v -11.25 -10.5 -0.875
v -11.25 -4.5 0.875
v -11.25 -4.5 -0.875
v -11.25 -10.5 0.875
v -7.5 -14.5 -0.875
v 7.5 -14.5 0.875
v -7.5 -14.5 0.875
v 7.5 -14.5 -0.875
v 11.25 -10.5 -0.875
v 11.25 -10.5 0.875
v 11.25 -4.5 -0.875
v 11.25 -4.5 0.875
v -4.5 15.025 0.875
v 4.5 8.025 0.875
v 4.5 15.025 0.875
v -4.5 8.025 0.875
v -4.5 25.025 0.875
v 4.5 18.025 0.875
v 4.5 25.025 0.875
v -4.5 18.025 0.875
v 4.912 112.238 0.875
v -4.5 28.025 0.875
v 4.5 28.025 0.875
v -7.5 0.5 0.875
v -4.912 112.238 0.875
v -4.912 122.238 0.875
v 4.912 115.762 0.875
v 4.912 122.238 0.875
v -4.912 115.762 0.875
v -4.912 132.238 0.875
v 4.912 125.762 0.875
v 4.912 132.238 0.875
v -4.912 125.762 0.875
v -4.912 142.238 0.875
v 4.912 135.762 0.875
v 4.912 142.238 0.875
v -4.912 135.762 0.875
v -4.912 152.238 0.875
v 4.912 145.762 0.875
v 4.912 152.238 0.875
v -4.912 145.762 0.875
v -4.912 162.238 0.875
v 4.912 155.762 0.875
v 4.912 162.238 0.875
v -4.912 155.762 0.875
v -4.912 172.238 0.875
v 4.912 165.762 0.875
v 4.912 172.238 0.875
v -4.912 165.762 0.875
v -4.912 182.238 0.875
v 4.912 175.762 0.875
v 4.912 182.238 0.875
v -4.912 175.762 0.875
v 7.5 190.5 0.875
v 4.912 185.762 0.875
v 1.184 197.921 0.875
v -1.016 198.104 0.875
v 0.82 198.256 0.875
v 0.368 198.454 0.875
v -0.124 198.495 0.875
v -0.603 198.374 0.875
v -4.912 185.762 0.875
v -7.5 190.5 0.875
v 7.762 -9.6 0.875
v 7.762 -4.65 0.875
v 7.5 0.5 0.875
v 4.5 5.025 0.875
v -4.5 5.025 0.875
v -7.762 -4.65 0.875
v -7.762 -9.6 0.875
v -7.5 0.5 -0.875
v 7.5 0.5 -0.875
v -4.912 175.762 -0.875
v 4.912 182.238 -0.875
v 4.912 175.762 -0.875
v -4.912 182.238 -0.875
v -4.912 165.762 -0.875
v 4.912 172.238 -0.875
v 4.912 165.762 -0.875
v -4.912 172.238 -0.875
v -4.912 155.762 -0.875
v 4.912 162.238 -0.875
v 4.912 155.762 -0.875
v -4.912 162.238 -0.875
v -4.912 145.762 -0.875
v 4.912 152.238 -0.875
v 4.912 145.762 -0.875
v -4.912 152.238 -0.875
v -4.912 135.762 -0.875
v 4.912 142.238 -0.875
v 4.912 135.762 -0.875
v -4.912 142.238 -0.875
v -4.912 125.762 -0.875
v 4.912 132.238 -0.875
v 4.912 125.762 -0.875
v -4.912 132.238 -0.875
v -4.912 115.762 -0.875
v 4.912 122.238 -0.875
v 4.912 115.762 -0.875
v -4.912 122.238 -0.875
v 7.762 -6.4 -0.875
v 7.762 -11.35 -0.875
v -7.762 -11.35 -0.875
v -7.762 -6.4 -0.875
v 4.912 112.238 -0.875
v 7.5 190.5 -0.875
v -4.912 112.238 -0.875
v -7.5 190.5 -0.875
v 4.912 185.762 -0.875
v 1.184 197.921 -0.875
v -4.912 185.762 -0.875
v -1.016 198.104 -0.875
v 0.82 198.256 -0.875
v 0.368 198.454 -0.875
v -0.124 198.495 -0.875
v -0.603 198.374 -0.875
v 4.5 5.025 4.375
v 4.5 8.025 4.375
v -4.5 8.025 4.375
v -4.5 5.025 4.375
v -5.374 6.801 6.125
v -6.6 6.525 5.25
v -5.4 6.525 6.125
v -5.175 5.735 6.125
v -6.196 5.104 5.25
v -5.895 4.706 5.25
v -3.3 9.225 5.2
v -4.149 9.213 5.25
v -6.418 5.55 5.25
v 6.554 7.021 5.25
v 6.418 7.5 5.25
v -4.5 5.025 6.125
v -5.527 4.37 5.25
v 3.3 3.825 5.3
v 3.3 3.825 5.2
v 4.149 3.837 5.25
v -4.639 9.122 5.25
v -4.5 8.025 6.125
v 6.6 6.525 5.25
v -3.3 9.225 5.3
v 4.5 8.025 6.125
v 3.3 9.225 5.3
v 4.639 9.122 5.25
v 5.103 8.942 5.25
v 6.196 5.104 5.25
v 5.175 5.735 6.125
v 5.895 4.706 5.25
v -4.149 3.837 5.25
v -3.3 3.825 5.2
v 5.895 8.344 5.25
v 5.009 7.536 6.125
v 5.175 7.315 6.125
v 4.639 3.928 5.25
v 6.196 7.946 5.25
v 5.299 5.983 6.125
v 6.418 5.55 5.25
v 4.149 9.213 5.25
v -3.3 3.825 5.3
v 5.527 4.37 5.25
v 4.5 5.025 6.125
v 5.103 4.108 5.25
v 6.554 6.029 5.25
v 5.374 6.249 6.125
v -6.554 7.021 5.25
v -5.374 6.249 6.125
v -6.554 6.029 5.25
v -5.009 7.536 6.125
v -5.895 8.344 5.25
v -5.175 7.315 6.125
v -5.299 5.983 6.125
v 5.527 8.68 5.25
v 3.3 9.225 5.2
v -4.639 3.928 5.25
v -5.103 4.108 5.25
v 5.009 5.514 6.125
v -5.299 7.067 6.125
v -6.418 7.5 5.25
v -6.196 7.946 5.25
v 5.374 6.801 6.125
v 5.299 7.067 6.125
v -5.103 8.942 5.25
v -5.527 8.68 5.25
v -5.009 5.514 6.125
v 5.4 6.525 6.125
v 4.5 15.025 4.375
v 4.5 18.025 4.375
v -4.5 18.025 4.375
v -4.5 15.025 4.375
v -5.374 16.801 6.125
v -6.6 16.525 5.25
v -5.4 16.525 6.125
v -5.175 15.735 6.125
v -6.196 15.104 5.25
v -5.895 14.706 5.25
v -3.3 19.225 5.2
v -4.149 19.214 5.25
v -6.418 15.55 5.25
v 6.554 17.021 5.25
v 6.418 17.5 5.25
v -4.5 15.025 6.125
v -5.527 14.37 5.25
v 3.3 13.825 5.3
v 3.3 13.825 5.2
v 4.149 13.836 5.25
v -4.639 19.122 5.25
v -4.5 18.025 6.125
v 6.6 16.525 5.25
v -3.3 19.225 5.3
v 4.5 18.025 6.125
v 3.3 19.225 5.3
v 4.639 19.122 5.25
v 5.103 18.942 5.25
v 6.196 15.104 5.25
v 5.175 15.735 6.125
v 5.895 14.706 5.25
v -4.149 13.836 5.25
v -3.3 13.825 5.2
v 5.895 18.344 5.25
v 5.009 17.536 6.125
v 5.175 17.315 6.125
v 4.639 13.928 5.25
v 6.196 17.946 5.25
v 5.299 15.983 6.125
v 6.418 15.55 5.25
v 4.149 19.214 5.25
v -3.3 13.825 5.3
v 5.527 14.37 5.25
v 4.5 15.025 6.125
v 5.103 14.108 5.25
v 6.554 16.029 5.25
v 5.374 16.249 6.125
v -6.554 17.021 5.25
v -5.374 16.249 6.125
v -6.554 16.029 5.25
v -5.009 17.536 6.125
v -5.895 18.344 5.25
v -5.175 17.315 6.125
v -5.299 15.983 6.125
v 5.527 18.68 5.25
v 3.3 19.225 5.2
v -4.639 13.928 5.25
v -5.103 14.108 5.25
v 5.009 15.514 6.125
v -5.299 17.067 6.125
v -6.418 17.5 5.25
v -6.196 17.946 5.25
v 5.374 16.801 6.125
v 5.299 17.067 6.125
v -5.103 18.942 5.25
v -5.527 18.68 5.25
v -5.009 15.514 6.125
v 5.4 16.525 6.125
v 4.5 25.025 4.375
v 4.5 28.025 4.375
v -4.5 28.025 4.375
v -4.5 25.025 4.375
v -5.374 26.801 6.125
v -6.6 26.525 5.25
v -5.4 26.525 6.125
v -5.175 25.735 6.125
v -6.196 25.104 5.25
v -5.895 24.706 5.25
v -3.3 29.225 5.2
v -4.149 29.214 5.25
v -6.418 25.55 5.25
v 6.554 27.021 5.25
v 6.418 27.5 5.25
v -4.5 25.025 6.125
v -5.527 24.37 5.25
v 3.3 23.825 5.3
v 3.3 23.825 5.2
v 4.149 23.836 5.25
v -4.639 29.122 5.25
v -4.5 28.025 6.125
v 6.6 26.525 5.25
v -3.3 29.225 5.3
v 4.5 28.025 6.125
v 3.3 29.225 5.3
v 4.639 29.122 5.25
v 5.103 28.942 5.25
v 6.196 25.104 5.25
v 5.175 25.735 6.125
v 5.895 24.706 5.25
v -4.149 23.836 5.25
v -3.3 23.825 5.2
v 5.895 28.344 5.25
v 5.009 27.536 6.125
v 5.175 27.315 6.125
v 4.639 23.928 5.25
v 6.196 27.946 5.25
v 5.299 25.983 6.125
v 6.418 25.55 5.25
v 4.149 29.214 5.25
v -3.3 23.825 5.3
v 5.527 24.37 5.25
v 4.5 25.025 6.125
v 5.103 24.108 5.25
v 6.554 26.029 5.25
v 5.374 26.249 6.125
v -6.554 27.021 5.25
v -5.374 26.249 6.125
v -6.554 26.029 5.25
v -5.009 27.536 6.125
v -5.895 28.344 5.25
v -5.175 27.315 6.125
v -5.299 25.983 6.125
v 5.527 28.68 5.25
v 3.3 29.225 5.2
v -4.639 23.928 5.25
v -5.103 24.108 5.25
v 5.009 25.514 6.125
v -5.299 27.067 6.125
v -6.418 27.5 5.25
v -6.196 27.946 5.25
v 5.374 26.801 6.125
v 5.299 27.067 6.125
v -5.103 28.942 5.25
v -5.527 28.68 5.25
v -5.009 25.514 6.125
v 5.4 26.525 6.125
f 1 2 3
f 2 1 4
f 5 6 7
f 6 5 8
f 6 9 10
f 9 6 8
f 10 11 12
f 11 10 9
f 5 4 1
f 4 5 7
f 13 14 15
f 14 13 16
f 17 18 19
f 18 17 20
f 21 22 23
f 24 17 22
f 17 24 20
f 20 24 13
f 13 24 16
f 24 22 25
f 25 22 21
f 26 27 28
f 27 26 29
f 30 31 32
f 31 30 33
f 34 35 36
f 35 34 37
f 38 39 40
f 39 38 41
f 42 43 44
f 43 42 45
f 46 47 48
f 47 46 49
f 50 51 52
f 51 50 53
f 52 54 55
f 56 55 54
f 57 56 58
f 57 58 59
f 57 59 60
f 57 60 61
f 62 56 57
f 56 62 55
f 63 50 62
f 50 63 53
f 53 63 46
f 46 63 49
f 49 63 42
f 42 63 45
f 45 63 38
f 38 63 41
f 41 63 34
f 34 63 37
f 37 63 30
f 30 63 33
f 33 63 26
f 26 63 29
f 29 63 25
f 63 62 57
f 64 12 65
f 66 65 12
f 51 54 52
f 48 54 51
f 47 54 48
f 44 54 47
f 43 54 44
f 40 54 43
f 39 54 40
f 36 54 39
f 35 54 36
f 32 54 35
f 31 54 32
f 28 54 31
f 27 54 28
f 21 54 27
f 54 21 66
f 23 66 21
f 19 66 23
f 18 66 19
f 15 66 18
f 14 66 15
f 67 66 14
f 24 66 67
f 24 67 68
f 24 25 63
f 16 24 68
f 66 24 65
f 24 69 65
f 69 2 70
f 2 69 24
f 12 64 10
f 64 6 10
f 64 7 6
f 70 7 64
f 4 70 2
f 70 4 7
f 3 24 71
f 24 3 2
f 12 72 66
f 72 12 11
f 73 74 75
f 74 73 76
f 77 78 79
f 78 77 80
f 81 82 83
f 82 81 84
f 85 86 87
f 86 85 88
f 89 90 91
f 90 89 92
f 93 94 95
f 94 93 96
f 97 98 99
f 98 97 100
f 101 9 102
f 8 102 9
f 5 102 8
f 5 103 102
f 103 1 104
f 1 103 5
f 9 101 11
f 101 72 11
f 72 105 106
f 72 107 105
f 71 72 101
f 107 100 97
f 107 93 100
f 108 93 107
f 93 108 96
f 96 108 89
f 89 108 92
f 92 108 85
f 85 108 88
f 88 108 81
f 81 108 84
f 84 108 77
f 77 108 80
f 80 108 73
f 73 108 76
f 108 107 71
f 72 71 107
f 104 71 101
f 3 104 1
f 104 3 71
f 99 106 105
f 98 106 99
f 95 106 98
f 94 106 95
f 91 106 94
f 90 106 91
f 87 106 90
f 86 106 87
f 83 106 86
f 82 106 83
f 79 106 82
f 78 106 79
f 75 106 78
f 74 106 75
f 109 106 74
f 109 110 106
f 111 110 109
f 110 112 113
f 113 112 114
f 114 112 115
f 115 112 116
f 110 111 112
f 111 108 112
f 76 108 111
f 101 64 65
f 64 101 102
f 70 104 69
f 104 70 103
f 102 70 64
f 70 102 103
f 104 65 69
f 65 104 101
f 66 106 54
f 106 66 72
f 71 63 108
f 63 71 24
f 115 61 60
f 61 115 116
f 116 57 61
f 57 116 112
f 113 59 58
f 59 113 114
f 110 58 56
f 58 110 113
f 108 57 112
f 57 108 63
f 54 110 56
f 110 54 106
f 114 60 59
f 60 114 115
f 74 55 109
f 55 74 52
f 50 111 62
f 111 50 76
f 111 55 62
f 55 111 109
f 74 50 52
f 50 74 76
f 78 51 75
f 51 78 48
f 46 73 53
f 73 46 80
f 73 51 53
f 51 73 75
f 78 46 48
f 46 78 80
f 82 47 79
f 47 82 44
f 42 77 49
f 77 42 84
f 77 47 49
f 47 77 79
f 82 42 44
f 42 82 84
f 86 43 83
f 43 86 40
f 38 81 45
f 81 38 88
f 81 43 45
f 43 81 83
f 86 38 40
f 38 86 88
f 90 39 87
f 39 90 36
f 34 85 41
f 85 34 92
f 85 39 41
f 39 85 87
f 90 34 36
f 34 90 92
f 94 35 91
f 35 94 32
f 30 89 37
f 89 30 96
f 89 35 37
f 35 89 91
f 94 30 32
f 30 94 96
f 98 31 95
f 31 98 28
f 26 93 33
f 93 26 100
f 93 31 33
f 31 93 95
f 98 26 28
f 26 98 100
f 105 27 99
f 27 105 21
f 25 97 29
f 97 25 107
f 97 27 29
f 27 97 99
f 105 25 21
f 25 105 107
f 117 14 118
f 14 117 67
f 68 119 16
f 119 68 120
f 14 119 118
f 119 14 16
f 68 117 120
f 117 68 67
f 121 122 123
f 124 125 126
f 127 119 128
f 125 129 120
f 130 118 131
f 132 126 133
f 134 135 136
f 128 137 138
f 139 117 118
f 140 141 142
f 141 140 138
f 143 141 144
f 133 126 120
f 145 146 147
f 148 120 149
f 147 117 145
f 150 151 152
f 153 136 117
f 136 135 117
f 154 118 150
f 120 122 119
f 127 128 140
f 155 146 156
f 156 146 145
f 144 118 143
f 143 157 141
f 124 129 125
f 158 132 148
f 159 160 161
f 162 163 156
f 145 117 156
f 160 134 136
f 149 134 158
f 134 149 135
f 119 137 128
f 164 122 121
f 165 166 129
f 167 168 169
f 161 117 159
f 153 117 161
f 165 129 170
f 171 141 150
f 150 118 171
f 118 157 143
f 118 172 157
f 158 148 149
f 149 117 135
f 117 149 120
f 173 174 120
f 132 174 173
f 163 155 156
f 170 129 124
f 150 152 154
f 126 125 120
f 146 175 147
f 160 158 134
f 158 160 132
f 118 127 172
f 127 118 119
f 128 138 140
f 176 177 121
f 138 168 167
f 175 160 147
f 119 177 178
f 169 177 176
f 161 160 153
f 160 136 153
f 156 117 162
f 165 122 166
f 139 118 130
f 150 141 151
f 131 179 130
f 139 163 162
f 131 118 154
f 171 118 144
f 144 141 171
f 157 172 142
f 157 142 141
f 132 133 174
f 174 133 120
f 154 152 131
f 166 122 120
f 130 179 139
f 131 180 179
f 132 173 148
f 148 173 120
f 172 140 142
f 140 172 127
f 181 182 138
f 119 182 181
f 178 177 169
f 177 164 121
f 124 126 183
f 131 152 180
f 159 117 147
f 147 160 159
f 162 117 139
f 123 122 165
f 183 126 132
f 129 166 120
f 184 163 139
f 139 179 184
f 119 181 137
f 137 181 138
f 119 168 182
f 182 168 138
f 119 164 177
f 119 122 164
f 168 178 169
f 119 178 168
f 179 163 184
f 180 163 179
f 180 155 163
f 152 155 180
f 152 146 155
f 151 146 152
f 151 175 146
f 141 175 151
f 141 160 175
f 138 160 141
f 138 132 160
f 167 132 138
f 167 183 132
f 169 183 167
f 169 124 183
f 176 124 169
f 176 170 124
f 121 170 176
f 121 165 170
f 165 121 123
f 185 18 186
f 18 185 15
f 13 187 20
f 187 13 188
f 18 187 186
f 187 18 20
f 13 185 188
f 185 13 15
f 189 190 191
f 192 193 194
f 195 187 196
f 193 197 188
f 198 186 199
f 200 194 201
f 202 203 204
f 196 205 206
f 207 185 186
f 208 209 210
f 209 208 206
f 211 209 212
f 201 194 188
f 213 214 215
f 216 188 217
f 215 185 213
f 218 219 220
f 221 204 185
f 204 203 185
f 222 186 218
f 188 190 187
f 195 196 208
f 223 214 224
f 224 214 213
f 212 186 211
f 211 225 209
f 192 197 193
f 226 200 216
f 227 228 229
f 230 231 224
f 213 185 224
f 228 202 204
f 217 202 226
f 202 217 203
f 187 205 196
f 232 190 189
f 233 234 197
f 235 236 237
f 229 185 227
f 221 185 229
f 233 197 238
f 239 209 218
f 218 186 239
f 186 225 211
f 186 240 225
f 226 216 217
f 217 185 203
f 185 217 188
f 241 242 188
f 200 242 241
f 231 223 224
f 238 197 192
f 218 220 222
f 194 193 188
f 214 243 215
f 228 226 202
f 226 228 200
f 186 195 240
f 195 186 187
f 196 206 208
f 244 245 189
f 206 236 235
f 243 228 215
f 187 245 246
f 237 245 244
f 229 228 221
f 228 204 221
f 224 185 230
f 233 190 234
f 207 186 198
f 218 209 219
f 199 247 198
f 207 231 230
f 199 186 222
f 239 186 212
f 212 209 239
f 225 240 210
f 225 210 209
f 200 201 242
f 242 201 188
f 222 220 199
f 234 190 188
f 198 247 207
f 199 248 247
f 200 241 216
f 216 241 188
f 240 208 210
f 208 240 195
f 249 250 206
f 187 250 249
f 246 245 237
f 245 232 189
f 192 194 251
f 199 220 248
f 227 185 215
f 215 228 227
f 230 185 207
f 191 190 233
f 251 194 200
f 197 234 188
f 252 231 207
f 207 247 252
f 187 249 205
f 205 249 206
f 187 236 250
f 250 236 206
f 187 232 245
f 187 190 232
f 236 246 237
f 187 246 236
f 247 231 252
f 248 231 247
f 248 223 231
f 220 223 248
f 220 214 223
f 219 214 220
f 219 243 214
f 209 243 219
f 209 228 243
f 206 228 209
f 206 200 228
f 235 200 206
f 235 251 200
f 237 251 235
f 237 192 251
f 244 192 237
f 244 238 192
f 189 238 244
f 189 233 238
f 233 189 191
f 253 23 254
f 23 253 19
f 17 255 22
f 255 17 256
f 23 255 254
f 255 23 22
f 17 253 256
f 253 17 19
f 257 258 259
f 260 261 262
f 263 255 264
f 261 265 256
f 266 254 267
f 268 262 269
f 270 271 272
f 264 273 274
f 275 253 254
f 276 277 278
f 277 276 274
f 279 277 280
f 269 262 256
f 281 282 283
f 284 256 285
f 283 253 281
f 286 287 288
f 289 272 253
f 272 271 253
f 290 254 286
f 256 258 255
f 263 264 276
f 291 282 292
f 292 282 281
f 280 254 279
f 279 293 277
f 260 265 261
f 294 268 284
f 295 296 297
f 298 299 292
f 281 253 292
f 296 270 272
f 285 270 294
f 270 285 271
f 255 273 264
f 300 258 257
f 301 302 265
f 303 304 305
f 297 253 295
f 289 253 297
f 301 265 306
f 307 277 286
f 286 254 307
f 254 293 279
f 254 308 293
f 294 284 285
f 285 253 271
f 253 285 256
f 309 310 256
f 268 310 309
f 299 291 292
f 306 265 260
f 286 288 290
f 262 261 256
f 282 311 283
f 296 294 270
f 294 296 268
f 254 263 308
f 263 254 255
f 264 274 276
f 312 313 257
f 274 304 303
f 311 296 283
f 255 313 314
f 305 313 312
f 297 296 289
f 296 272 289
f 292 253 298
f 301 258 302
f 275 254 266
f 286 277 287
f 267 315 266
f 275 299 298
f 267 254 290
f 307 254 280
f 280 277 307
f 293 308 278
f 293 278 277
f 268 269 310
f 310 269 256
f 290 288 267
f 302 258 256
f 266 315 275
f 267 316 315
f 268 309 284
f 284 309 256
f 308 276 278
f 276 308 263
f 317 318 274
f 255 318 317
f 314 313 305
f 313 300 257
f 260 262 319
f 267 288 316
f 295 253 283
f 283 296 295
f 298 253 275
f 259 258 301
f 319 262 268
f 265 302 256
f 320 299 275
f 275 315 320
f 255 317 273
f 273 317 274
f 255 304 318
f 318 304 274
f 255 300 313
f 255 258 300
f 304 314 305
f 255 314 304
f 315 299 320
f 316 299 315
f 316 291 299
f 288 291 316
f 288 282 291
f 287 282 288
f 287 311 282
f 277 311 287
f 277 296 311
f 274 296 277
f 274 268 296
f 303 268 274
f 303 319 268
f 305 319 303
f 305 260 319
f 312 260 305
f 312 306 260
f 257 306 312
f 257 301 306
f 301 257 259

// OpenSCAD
// file: lipo_strap.scad
button_width = strap_width * 0.6;
button_thickness = button_width / 3;
button_leg_height = strap_thickness * 2;
button_head_height = strap_thickness;
button_head_length = strap_width;
button_head_offset = 1.2;
button_space = 10;
buttons = 3;
button_holes = 8;


$fs = $preview ? 1 : 0.5;
$fa = $preview ? 10 : 5;

anti_warp = .15;
filament_width = 1.75;

function anti_warp_widen(v) = v + (filament_width * anti_warp) * 2;
function anti_warp_shrink(v) = v - (filament_width * anti_warp) * 2;

module tail() {
}

module button_head() {
	hull() {
		cube([button_width, button_thickness, button_head_height], center = true);
		cube([button_width - button_head_offset * 2, button_thickness + 2 * button_head_offset, 0.1], center = true);
		translate([button_width / 2 - button_head_offset / 2, 0]) cylinder(h = button_head_height / 2, d1 = button_thickness + 2 * button_head_offset, d2 = button_thickness);
		translate([-button_width / 2 + button_head_offset / 2, 0]) cylinder(h = button_head_height / 2, d1 = button_thickness + 2 * button_head_offset, d2 = button_thickness);
	}
}

module button_leg() {
	cube([button_width, button_thickness, button_leg_height], center = true);
}

module button() {
	translate([0, 0, button_leg_height / 2]) {
		button_leg();
		translate([0, 0, button_leg_height / 2 + button_head_height / 2]) button_head();
	}
}

module button_hole() {
	cube([anti_warp_widen(button_width + button_head_offset * 0.25), anti_warp_widen(button_thickness), strap_thickness], center = true);
}

module generate_buttons(count) {
	assert(count != undef);
	for (i = [0:count-1]) {
		translate([0, anti_warp_widen(button_space * i), 0]) button();
	}
}

module generate_button_holes(count) {
	assert(count != undef);
	for (i = [0:count-1]) {
		translate([0, -button_space * i]) button_hole();
	}
}

module tailtip(length) {
	hull() {
		cube([strap_width, length * 0.1, strap_thickness], center = true);
		translate([0, length - (strap_width / 5)]) cylinder(h = strap_thickness, d = strap_width / 5, center = true);
	}
}

module tail() {
	difference() {
		union() {
			translate([0, strap_length * 0.95 / 2]) cube([strap_width, strap_length * 0.95, strap_thickness], center = true);
			translate([0, strap_length * 0.95]) tailtip(strap_length * 0.05);
		}
		translate([0, strap_length * 0.92]) generate_button_holes(button_holes);
	}
	translate([0, strap_length * 0.03, strap_thickness / 2]) generate_buttons(buttons);
}

module strap_hole() {
	cube([anti_warp_widen(strap_width), strap_thickness * 2, button_head_length], center = true);
}

module head() {
	difference() {
		hull() {
			cube([strap_width, 1, strap_thickness], center = true);
			translate([0, strap_width * 1/3]) cube([strap_width * 1.5, 1, strap_thickness], center = true);
			translate([0, strap_width * 2/3]) cube([strap_width * 1.5, 1, strap_thickness], center = true);
			translate([0, button_head_length - 1]) cube([strap_width, 1, strap_thickness], center = true);
		}
		translate([0, button_head_length / 2 + 0.5]) rotate([45, 0]) strap_hole();
	}
}

module main() {
	rotate([0, 0, 180]) head();
	tail();
}

main();
// main file
strap_length = 200; // 20cm 
strap_width = 15; // 1.5cm
strap_thickness = 1.75;

include <lipo_strap.scad>
